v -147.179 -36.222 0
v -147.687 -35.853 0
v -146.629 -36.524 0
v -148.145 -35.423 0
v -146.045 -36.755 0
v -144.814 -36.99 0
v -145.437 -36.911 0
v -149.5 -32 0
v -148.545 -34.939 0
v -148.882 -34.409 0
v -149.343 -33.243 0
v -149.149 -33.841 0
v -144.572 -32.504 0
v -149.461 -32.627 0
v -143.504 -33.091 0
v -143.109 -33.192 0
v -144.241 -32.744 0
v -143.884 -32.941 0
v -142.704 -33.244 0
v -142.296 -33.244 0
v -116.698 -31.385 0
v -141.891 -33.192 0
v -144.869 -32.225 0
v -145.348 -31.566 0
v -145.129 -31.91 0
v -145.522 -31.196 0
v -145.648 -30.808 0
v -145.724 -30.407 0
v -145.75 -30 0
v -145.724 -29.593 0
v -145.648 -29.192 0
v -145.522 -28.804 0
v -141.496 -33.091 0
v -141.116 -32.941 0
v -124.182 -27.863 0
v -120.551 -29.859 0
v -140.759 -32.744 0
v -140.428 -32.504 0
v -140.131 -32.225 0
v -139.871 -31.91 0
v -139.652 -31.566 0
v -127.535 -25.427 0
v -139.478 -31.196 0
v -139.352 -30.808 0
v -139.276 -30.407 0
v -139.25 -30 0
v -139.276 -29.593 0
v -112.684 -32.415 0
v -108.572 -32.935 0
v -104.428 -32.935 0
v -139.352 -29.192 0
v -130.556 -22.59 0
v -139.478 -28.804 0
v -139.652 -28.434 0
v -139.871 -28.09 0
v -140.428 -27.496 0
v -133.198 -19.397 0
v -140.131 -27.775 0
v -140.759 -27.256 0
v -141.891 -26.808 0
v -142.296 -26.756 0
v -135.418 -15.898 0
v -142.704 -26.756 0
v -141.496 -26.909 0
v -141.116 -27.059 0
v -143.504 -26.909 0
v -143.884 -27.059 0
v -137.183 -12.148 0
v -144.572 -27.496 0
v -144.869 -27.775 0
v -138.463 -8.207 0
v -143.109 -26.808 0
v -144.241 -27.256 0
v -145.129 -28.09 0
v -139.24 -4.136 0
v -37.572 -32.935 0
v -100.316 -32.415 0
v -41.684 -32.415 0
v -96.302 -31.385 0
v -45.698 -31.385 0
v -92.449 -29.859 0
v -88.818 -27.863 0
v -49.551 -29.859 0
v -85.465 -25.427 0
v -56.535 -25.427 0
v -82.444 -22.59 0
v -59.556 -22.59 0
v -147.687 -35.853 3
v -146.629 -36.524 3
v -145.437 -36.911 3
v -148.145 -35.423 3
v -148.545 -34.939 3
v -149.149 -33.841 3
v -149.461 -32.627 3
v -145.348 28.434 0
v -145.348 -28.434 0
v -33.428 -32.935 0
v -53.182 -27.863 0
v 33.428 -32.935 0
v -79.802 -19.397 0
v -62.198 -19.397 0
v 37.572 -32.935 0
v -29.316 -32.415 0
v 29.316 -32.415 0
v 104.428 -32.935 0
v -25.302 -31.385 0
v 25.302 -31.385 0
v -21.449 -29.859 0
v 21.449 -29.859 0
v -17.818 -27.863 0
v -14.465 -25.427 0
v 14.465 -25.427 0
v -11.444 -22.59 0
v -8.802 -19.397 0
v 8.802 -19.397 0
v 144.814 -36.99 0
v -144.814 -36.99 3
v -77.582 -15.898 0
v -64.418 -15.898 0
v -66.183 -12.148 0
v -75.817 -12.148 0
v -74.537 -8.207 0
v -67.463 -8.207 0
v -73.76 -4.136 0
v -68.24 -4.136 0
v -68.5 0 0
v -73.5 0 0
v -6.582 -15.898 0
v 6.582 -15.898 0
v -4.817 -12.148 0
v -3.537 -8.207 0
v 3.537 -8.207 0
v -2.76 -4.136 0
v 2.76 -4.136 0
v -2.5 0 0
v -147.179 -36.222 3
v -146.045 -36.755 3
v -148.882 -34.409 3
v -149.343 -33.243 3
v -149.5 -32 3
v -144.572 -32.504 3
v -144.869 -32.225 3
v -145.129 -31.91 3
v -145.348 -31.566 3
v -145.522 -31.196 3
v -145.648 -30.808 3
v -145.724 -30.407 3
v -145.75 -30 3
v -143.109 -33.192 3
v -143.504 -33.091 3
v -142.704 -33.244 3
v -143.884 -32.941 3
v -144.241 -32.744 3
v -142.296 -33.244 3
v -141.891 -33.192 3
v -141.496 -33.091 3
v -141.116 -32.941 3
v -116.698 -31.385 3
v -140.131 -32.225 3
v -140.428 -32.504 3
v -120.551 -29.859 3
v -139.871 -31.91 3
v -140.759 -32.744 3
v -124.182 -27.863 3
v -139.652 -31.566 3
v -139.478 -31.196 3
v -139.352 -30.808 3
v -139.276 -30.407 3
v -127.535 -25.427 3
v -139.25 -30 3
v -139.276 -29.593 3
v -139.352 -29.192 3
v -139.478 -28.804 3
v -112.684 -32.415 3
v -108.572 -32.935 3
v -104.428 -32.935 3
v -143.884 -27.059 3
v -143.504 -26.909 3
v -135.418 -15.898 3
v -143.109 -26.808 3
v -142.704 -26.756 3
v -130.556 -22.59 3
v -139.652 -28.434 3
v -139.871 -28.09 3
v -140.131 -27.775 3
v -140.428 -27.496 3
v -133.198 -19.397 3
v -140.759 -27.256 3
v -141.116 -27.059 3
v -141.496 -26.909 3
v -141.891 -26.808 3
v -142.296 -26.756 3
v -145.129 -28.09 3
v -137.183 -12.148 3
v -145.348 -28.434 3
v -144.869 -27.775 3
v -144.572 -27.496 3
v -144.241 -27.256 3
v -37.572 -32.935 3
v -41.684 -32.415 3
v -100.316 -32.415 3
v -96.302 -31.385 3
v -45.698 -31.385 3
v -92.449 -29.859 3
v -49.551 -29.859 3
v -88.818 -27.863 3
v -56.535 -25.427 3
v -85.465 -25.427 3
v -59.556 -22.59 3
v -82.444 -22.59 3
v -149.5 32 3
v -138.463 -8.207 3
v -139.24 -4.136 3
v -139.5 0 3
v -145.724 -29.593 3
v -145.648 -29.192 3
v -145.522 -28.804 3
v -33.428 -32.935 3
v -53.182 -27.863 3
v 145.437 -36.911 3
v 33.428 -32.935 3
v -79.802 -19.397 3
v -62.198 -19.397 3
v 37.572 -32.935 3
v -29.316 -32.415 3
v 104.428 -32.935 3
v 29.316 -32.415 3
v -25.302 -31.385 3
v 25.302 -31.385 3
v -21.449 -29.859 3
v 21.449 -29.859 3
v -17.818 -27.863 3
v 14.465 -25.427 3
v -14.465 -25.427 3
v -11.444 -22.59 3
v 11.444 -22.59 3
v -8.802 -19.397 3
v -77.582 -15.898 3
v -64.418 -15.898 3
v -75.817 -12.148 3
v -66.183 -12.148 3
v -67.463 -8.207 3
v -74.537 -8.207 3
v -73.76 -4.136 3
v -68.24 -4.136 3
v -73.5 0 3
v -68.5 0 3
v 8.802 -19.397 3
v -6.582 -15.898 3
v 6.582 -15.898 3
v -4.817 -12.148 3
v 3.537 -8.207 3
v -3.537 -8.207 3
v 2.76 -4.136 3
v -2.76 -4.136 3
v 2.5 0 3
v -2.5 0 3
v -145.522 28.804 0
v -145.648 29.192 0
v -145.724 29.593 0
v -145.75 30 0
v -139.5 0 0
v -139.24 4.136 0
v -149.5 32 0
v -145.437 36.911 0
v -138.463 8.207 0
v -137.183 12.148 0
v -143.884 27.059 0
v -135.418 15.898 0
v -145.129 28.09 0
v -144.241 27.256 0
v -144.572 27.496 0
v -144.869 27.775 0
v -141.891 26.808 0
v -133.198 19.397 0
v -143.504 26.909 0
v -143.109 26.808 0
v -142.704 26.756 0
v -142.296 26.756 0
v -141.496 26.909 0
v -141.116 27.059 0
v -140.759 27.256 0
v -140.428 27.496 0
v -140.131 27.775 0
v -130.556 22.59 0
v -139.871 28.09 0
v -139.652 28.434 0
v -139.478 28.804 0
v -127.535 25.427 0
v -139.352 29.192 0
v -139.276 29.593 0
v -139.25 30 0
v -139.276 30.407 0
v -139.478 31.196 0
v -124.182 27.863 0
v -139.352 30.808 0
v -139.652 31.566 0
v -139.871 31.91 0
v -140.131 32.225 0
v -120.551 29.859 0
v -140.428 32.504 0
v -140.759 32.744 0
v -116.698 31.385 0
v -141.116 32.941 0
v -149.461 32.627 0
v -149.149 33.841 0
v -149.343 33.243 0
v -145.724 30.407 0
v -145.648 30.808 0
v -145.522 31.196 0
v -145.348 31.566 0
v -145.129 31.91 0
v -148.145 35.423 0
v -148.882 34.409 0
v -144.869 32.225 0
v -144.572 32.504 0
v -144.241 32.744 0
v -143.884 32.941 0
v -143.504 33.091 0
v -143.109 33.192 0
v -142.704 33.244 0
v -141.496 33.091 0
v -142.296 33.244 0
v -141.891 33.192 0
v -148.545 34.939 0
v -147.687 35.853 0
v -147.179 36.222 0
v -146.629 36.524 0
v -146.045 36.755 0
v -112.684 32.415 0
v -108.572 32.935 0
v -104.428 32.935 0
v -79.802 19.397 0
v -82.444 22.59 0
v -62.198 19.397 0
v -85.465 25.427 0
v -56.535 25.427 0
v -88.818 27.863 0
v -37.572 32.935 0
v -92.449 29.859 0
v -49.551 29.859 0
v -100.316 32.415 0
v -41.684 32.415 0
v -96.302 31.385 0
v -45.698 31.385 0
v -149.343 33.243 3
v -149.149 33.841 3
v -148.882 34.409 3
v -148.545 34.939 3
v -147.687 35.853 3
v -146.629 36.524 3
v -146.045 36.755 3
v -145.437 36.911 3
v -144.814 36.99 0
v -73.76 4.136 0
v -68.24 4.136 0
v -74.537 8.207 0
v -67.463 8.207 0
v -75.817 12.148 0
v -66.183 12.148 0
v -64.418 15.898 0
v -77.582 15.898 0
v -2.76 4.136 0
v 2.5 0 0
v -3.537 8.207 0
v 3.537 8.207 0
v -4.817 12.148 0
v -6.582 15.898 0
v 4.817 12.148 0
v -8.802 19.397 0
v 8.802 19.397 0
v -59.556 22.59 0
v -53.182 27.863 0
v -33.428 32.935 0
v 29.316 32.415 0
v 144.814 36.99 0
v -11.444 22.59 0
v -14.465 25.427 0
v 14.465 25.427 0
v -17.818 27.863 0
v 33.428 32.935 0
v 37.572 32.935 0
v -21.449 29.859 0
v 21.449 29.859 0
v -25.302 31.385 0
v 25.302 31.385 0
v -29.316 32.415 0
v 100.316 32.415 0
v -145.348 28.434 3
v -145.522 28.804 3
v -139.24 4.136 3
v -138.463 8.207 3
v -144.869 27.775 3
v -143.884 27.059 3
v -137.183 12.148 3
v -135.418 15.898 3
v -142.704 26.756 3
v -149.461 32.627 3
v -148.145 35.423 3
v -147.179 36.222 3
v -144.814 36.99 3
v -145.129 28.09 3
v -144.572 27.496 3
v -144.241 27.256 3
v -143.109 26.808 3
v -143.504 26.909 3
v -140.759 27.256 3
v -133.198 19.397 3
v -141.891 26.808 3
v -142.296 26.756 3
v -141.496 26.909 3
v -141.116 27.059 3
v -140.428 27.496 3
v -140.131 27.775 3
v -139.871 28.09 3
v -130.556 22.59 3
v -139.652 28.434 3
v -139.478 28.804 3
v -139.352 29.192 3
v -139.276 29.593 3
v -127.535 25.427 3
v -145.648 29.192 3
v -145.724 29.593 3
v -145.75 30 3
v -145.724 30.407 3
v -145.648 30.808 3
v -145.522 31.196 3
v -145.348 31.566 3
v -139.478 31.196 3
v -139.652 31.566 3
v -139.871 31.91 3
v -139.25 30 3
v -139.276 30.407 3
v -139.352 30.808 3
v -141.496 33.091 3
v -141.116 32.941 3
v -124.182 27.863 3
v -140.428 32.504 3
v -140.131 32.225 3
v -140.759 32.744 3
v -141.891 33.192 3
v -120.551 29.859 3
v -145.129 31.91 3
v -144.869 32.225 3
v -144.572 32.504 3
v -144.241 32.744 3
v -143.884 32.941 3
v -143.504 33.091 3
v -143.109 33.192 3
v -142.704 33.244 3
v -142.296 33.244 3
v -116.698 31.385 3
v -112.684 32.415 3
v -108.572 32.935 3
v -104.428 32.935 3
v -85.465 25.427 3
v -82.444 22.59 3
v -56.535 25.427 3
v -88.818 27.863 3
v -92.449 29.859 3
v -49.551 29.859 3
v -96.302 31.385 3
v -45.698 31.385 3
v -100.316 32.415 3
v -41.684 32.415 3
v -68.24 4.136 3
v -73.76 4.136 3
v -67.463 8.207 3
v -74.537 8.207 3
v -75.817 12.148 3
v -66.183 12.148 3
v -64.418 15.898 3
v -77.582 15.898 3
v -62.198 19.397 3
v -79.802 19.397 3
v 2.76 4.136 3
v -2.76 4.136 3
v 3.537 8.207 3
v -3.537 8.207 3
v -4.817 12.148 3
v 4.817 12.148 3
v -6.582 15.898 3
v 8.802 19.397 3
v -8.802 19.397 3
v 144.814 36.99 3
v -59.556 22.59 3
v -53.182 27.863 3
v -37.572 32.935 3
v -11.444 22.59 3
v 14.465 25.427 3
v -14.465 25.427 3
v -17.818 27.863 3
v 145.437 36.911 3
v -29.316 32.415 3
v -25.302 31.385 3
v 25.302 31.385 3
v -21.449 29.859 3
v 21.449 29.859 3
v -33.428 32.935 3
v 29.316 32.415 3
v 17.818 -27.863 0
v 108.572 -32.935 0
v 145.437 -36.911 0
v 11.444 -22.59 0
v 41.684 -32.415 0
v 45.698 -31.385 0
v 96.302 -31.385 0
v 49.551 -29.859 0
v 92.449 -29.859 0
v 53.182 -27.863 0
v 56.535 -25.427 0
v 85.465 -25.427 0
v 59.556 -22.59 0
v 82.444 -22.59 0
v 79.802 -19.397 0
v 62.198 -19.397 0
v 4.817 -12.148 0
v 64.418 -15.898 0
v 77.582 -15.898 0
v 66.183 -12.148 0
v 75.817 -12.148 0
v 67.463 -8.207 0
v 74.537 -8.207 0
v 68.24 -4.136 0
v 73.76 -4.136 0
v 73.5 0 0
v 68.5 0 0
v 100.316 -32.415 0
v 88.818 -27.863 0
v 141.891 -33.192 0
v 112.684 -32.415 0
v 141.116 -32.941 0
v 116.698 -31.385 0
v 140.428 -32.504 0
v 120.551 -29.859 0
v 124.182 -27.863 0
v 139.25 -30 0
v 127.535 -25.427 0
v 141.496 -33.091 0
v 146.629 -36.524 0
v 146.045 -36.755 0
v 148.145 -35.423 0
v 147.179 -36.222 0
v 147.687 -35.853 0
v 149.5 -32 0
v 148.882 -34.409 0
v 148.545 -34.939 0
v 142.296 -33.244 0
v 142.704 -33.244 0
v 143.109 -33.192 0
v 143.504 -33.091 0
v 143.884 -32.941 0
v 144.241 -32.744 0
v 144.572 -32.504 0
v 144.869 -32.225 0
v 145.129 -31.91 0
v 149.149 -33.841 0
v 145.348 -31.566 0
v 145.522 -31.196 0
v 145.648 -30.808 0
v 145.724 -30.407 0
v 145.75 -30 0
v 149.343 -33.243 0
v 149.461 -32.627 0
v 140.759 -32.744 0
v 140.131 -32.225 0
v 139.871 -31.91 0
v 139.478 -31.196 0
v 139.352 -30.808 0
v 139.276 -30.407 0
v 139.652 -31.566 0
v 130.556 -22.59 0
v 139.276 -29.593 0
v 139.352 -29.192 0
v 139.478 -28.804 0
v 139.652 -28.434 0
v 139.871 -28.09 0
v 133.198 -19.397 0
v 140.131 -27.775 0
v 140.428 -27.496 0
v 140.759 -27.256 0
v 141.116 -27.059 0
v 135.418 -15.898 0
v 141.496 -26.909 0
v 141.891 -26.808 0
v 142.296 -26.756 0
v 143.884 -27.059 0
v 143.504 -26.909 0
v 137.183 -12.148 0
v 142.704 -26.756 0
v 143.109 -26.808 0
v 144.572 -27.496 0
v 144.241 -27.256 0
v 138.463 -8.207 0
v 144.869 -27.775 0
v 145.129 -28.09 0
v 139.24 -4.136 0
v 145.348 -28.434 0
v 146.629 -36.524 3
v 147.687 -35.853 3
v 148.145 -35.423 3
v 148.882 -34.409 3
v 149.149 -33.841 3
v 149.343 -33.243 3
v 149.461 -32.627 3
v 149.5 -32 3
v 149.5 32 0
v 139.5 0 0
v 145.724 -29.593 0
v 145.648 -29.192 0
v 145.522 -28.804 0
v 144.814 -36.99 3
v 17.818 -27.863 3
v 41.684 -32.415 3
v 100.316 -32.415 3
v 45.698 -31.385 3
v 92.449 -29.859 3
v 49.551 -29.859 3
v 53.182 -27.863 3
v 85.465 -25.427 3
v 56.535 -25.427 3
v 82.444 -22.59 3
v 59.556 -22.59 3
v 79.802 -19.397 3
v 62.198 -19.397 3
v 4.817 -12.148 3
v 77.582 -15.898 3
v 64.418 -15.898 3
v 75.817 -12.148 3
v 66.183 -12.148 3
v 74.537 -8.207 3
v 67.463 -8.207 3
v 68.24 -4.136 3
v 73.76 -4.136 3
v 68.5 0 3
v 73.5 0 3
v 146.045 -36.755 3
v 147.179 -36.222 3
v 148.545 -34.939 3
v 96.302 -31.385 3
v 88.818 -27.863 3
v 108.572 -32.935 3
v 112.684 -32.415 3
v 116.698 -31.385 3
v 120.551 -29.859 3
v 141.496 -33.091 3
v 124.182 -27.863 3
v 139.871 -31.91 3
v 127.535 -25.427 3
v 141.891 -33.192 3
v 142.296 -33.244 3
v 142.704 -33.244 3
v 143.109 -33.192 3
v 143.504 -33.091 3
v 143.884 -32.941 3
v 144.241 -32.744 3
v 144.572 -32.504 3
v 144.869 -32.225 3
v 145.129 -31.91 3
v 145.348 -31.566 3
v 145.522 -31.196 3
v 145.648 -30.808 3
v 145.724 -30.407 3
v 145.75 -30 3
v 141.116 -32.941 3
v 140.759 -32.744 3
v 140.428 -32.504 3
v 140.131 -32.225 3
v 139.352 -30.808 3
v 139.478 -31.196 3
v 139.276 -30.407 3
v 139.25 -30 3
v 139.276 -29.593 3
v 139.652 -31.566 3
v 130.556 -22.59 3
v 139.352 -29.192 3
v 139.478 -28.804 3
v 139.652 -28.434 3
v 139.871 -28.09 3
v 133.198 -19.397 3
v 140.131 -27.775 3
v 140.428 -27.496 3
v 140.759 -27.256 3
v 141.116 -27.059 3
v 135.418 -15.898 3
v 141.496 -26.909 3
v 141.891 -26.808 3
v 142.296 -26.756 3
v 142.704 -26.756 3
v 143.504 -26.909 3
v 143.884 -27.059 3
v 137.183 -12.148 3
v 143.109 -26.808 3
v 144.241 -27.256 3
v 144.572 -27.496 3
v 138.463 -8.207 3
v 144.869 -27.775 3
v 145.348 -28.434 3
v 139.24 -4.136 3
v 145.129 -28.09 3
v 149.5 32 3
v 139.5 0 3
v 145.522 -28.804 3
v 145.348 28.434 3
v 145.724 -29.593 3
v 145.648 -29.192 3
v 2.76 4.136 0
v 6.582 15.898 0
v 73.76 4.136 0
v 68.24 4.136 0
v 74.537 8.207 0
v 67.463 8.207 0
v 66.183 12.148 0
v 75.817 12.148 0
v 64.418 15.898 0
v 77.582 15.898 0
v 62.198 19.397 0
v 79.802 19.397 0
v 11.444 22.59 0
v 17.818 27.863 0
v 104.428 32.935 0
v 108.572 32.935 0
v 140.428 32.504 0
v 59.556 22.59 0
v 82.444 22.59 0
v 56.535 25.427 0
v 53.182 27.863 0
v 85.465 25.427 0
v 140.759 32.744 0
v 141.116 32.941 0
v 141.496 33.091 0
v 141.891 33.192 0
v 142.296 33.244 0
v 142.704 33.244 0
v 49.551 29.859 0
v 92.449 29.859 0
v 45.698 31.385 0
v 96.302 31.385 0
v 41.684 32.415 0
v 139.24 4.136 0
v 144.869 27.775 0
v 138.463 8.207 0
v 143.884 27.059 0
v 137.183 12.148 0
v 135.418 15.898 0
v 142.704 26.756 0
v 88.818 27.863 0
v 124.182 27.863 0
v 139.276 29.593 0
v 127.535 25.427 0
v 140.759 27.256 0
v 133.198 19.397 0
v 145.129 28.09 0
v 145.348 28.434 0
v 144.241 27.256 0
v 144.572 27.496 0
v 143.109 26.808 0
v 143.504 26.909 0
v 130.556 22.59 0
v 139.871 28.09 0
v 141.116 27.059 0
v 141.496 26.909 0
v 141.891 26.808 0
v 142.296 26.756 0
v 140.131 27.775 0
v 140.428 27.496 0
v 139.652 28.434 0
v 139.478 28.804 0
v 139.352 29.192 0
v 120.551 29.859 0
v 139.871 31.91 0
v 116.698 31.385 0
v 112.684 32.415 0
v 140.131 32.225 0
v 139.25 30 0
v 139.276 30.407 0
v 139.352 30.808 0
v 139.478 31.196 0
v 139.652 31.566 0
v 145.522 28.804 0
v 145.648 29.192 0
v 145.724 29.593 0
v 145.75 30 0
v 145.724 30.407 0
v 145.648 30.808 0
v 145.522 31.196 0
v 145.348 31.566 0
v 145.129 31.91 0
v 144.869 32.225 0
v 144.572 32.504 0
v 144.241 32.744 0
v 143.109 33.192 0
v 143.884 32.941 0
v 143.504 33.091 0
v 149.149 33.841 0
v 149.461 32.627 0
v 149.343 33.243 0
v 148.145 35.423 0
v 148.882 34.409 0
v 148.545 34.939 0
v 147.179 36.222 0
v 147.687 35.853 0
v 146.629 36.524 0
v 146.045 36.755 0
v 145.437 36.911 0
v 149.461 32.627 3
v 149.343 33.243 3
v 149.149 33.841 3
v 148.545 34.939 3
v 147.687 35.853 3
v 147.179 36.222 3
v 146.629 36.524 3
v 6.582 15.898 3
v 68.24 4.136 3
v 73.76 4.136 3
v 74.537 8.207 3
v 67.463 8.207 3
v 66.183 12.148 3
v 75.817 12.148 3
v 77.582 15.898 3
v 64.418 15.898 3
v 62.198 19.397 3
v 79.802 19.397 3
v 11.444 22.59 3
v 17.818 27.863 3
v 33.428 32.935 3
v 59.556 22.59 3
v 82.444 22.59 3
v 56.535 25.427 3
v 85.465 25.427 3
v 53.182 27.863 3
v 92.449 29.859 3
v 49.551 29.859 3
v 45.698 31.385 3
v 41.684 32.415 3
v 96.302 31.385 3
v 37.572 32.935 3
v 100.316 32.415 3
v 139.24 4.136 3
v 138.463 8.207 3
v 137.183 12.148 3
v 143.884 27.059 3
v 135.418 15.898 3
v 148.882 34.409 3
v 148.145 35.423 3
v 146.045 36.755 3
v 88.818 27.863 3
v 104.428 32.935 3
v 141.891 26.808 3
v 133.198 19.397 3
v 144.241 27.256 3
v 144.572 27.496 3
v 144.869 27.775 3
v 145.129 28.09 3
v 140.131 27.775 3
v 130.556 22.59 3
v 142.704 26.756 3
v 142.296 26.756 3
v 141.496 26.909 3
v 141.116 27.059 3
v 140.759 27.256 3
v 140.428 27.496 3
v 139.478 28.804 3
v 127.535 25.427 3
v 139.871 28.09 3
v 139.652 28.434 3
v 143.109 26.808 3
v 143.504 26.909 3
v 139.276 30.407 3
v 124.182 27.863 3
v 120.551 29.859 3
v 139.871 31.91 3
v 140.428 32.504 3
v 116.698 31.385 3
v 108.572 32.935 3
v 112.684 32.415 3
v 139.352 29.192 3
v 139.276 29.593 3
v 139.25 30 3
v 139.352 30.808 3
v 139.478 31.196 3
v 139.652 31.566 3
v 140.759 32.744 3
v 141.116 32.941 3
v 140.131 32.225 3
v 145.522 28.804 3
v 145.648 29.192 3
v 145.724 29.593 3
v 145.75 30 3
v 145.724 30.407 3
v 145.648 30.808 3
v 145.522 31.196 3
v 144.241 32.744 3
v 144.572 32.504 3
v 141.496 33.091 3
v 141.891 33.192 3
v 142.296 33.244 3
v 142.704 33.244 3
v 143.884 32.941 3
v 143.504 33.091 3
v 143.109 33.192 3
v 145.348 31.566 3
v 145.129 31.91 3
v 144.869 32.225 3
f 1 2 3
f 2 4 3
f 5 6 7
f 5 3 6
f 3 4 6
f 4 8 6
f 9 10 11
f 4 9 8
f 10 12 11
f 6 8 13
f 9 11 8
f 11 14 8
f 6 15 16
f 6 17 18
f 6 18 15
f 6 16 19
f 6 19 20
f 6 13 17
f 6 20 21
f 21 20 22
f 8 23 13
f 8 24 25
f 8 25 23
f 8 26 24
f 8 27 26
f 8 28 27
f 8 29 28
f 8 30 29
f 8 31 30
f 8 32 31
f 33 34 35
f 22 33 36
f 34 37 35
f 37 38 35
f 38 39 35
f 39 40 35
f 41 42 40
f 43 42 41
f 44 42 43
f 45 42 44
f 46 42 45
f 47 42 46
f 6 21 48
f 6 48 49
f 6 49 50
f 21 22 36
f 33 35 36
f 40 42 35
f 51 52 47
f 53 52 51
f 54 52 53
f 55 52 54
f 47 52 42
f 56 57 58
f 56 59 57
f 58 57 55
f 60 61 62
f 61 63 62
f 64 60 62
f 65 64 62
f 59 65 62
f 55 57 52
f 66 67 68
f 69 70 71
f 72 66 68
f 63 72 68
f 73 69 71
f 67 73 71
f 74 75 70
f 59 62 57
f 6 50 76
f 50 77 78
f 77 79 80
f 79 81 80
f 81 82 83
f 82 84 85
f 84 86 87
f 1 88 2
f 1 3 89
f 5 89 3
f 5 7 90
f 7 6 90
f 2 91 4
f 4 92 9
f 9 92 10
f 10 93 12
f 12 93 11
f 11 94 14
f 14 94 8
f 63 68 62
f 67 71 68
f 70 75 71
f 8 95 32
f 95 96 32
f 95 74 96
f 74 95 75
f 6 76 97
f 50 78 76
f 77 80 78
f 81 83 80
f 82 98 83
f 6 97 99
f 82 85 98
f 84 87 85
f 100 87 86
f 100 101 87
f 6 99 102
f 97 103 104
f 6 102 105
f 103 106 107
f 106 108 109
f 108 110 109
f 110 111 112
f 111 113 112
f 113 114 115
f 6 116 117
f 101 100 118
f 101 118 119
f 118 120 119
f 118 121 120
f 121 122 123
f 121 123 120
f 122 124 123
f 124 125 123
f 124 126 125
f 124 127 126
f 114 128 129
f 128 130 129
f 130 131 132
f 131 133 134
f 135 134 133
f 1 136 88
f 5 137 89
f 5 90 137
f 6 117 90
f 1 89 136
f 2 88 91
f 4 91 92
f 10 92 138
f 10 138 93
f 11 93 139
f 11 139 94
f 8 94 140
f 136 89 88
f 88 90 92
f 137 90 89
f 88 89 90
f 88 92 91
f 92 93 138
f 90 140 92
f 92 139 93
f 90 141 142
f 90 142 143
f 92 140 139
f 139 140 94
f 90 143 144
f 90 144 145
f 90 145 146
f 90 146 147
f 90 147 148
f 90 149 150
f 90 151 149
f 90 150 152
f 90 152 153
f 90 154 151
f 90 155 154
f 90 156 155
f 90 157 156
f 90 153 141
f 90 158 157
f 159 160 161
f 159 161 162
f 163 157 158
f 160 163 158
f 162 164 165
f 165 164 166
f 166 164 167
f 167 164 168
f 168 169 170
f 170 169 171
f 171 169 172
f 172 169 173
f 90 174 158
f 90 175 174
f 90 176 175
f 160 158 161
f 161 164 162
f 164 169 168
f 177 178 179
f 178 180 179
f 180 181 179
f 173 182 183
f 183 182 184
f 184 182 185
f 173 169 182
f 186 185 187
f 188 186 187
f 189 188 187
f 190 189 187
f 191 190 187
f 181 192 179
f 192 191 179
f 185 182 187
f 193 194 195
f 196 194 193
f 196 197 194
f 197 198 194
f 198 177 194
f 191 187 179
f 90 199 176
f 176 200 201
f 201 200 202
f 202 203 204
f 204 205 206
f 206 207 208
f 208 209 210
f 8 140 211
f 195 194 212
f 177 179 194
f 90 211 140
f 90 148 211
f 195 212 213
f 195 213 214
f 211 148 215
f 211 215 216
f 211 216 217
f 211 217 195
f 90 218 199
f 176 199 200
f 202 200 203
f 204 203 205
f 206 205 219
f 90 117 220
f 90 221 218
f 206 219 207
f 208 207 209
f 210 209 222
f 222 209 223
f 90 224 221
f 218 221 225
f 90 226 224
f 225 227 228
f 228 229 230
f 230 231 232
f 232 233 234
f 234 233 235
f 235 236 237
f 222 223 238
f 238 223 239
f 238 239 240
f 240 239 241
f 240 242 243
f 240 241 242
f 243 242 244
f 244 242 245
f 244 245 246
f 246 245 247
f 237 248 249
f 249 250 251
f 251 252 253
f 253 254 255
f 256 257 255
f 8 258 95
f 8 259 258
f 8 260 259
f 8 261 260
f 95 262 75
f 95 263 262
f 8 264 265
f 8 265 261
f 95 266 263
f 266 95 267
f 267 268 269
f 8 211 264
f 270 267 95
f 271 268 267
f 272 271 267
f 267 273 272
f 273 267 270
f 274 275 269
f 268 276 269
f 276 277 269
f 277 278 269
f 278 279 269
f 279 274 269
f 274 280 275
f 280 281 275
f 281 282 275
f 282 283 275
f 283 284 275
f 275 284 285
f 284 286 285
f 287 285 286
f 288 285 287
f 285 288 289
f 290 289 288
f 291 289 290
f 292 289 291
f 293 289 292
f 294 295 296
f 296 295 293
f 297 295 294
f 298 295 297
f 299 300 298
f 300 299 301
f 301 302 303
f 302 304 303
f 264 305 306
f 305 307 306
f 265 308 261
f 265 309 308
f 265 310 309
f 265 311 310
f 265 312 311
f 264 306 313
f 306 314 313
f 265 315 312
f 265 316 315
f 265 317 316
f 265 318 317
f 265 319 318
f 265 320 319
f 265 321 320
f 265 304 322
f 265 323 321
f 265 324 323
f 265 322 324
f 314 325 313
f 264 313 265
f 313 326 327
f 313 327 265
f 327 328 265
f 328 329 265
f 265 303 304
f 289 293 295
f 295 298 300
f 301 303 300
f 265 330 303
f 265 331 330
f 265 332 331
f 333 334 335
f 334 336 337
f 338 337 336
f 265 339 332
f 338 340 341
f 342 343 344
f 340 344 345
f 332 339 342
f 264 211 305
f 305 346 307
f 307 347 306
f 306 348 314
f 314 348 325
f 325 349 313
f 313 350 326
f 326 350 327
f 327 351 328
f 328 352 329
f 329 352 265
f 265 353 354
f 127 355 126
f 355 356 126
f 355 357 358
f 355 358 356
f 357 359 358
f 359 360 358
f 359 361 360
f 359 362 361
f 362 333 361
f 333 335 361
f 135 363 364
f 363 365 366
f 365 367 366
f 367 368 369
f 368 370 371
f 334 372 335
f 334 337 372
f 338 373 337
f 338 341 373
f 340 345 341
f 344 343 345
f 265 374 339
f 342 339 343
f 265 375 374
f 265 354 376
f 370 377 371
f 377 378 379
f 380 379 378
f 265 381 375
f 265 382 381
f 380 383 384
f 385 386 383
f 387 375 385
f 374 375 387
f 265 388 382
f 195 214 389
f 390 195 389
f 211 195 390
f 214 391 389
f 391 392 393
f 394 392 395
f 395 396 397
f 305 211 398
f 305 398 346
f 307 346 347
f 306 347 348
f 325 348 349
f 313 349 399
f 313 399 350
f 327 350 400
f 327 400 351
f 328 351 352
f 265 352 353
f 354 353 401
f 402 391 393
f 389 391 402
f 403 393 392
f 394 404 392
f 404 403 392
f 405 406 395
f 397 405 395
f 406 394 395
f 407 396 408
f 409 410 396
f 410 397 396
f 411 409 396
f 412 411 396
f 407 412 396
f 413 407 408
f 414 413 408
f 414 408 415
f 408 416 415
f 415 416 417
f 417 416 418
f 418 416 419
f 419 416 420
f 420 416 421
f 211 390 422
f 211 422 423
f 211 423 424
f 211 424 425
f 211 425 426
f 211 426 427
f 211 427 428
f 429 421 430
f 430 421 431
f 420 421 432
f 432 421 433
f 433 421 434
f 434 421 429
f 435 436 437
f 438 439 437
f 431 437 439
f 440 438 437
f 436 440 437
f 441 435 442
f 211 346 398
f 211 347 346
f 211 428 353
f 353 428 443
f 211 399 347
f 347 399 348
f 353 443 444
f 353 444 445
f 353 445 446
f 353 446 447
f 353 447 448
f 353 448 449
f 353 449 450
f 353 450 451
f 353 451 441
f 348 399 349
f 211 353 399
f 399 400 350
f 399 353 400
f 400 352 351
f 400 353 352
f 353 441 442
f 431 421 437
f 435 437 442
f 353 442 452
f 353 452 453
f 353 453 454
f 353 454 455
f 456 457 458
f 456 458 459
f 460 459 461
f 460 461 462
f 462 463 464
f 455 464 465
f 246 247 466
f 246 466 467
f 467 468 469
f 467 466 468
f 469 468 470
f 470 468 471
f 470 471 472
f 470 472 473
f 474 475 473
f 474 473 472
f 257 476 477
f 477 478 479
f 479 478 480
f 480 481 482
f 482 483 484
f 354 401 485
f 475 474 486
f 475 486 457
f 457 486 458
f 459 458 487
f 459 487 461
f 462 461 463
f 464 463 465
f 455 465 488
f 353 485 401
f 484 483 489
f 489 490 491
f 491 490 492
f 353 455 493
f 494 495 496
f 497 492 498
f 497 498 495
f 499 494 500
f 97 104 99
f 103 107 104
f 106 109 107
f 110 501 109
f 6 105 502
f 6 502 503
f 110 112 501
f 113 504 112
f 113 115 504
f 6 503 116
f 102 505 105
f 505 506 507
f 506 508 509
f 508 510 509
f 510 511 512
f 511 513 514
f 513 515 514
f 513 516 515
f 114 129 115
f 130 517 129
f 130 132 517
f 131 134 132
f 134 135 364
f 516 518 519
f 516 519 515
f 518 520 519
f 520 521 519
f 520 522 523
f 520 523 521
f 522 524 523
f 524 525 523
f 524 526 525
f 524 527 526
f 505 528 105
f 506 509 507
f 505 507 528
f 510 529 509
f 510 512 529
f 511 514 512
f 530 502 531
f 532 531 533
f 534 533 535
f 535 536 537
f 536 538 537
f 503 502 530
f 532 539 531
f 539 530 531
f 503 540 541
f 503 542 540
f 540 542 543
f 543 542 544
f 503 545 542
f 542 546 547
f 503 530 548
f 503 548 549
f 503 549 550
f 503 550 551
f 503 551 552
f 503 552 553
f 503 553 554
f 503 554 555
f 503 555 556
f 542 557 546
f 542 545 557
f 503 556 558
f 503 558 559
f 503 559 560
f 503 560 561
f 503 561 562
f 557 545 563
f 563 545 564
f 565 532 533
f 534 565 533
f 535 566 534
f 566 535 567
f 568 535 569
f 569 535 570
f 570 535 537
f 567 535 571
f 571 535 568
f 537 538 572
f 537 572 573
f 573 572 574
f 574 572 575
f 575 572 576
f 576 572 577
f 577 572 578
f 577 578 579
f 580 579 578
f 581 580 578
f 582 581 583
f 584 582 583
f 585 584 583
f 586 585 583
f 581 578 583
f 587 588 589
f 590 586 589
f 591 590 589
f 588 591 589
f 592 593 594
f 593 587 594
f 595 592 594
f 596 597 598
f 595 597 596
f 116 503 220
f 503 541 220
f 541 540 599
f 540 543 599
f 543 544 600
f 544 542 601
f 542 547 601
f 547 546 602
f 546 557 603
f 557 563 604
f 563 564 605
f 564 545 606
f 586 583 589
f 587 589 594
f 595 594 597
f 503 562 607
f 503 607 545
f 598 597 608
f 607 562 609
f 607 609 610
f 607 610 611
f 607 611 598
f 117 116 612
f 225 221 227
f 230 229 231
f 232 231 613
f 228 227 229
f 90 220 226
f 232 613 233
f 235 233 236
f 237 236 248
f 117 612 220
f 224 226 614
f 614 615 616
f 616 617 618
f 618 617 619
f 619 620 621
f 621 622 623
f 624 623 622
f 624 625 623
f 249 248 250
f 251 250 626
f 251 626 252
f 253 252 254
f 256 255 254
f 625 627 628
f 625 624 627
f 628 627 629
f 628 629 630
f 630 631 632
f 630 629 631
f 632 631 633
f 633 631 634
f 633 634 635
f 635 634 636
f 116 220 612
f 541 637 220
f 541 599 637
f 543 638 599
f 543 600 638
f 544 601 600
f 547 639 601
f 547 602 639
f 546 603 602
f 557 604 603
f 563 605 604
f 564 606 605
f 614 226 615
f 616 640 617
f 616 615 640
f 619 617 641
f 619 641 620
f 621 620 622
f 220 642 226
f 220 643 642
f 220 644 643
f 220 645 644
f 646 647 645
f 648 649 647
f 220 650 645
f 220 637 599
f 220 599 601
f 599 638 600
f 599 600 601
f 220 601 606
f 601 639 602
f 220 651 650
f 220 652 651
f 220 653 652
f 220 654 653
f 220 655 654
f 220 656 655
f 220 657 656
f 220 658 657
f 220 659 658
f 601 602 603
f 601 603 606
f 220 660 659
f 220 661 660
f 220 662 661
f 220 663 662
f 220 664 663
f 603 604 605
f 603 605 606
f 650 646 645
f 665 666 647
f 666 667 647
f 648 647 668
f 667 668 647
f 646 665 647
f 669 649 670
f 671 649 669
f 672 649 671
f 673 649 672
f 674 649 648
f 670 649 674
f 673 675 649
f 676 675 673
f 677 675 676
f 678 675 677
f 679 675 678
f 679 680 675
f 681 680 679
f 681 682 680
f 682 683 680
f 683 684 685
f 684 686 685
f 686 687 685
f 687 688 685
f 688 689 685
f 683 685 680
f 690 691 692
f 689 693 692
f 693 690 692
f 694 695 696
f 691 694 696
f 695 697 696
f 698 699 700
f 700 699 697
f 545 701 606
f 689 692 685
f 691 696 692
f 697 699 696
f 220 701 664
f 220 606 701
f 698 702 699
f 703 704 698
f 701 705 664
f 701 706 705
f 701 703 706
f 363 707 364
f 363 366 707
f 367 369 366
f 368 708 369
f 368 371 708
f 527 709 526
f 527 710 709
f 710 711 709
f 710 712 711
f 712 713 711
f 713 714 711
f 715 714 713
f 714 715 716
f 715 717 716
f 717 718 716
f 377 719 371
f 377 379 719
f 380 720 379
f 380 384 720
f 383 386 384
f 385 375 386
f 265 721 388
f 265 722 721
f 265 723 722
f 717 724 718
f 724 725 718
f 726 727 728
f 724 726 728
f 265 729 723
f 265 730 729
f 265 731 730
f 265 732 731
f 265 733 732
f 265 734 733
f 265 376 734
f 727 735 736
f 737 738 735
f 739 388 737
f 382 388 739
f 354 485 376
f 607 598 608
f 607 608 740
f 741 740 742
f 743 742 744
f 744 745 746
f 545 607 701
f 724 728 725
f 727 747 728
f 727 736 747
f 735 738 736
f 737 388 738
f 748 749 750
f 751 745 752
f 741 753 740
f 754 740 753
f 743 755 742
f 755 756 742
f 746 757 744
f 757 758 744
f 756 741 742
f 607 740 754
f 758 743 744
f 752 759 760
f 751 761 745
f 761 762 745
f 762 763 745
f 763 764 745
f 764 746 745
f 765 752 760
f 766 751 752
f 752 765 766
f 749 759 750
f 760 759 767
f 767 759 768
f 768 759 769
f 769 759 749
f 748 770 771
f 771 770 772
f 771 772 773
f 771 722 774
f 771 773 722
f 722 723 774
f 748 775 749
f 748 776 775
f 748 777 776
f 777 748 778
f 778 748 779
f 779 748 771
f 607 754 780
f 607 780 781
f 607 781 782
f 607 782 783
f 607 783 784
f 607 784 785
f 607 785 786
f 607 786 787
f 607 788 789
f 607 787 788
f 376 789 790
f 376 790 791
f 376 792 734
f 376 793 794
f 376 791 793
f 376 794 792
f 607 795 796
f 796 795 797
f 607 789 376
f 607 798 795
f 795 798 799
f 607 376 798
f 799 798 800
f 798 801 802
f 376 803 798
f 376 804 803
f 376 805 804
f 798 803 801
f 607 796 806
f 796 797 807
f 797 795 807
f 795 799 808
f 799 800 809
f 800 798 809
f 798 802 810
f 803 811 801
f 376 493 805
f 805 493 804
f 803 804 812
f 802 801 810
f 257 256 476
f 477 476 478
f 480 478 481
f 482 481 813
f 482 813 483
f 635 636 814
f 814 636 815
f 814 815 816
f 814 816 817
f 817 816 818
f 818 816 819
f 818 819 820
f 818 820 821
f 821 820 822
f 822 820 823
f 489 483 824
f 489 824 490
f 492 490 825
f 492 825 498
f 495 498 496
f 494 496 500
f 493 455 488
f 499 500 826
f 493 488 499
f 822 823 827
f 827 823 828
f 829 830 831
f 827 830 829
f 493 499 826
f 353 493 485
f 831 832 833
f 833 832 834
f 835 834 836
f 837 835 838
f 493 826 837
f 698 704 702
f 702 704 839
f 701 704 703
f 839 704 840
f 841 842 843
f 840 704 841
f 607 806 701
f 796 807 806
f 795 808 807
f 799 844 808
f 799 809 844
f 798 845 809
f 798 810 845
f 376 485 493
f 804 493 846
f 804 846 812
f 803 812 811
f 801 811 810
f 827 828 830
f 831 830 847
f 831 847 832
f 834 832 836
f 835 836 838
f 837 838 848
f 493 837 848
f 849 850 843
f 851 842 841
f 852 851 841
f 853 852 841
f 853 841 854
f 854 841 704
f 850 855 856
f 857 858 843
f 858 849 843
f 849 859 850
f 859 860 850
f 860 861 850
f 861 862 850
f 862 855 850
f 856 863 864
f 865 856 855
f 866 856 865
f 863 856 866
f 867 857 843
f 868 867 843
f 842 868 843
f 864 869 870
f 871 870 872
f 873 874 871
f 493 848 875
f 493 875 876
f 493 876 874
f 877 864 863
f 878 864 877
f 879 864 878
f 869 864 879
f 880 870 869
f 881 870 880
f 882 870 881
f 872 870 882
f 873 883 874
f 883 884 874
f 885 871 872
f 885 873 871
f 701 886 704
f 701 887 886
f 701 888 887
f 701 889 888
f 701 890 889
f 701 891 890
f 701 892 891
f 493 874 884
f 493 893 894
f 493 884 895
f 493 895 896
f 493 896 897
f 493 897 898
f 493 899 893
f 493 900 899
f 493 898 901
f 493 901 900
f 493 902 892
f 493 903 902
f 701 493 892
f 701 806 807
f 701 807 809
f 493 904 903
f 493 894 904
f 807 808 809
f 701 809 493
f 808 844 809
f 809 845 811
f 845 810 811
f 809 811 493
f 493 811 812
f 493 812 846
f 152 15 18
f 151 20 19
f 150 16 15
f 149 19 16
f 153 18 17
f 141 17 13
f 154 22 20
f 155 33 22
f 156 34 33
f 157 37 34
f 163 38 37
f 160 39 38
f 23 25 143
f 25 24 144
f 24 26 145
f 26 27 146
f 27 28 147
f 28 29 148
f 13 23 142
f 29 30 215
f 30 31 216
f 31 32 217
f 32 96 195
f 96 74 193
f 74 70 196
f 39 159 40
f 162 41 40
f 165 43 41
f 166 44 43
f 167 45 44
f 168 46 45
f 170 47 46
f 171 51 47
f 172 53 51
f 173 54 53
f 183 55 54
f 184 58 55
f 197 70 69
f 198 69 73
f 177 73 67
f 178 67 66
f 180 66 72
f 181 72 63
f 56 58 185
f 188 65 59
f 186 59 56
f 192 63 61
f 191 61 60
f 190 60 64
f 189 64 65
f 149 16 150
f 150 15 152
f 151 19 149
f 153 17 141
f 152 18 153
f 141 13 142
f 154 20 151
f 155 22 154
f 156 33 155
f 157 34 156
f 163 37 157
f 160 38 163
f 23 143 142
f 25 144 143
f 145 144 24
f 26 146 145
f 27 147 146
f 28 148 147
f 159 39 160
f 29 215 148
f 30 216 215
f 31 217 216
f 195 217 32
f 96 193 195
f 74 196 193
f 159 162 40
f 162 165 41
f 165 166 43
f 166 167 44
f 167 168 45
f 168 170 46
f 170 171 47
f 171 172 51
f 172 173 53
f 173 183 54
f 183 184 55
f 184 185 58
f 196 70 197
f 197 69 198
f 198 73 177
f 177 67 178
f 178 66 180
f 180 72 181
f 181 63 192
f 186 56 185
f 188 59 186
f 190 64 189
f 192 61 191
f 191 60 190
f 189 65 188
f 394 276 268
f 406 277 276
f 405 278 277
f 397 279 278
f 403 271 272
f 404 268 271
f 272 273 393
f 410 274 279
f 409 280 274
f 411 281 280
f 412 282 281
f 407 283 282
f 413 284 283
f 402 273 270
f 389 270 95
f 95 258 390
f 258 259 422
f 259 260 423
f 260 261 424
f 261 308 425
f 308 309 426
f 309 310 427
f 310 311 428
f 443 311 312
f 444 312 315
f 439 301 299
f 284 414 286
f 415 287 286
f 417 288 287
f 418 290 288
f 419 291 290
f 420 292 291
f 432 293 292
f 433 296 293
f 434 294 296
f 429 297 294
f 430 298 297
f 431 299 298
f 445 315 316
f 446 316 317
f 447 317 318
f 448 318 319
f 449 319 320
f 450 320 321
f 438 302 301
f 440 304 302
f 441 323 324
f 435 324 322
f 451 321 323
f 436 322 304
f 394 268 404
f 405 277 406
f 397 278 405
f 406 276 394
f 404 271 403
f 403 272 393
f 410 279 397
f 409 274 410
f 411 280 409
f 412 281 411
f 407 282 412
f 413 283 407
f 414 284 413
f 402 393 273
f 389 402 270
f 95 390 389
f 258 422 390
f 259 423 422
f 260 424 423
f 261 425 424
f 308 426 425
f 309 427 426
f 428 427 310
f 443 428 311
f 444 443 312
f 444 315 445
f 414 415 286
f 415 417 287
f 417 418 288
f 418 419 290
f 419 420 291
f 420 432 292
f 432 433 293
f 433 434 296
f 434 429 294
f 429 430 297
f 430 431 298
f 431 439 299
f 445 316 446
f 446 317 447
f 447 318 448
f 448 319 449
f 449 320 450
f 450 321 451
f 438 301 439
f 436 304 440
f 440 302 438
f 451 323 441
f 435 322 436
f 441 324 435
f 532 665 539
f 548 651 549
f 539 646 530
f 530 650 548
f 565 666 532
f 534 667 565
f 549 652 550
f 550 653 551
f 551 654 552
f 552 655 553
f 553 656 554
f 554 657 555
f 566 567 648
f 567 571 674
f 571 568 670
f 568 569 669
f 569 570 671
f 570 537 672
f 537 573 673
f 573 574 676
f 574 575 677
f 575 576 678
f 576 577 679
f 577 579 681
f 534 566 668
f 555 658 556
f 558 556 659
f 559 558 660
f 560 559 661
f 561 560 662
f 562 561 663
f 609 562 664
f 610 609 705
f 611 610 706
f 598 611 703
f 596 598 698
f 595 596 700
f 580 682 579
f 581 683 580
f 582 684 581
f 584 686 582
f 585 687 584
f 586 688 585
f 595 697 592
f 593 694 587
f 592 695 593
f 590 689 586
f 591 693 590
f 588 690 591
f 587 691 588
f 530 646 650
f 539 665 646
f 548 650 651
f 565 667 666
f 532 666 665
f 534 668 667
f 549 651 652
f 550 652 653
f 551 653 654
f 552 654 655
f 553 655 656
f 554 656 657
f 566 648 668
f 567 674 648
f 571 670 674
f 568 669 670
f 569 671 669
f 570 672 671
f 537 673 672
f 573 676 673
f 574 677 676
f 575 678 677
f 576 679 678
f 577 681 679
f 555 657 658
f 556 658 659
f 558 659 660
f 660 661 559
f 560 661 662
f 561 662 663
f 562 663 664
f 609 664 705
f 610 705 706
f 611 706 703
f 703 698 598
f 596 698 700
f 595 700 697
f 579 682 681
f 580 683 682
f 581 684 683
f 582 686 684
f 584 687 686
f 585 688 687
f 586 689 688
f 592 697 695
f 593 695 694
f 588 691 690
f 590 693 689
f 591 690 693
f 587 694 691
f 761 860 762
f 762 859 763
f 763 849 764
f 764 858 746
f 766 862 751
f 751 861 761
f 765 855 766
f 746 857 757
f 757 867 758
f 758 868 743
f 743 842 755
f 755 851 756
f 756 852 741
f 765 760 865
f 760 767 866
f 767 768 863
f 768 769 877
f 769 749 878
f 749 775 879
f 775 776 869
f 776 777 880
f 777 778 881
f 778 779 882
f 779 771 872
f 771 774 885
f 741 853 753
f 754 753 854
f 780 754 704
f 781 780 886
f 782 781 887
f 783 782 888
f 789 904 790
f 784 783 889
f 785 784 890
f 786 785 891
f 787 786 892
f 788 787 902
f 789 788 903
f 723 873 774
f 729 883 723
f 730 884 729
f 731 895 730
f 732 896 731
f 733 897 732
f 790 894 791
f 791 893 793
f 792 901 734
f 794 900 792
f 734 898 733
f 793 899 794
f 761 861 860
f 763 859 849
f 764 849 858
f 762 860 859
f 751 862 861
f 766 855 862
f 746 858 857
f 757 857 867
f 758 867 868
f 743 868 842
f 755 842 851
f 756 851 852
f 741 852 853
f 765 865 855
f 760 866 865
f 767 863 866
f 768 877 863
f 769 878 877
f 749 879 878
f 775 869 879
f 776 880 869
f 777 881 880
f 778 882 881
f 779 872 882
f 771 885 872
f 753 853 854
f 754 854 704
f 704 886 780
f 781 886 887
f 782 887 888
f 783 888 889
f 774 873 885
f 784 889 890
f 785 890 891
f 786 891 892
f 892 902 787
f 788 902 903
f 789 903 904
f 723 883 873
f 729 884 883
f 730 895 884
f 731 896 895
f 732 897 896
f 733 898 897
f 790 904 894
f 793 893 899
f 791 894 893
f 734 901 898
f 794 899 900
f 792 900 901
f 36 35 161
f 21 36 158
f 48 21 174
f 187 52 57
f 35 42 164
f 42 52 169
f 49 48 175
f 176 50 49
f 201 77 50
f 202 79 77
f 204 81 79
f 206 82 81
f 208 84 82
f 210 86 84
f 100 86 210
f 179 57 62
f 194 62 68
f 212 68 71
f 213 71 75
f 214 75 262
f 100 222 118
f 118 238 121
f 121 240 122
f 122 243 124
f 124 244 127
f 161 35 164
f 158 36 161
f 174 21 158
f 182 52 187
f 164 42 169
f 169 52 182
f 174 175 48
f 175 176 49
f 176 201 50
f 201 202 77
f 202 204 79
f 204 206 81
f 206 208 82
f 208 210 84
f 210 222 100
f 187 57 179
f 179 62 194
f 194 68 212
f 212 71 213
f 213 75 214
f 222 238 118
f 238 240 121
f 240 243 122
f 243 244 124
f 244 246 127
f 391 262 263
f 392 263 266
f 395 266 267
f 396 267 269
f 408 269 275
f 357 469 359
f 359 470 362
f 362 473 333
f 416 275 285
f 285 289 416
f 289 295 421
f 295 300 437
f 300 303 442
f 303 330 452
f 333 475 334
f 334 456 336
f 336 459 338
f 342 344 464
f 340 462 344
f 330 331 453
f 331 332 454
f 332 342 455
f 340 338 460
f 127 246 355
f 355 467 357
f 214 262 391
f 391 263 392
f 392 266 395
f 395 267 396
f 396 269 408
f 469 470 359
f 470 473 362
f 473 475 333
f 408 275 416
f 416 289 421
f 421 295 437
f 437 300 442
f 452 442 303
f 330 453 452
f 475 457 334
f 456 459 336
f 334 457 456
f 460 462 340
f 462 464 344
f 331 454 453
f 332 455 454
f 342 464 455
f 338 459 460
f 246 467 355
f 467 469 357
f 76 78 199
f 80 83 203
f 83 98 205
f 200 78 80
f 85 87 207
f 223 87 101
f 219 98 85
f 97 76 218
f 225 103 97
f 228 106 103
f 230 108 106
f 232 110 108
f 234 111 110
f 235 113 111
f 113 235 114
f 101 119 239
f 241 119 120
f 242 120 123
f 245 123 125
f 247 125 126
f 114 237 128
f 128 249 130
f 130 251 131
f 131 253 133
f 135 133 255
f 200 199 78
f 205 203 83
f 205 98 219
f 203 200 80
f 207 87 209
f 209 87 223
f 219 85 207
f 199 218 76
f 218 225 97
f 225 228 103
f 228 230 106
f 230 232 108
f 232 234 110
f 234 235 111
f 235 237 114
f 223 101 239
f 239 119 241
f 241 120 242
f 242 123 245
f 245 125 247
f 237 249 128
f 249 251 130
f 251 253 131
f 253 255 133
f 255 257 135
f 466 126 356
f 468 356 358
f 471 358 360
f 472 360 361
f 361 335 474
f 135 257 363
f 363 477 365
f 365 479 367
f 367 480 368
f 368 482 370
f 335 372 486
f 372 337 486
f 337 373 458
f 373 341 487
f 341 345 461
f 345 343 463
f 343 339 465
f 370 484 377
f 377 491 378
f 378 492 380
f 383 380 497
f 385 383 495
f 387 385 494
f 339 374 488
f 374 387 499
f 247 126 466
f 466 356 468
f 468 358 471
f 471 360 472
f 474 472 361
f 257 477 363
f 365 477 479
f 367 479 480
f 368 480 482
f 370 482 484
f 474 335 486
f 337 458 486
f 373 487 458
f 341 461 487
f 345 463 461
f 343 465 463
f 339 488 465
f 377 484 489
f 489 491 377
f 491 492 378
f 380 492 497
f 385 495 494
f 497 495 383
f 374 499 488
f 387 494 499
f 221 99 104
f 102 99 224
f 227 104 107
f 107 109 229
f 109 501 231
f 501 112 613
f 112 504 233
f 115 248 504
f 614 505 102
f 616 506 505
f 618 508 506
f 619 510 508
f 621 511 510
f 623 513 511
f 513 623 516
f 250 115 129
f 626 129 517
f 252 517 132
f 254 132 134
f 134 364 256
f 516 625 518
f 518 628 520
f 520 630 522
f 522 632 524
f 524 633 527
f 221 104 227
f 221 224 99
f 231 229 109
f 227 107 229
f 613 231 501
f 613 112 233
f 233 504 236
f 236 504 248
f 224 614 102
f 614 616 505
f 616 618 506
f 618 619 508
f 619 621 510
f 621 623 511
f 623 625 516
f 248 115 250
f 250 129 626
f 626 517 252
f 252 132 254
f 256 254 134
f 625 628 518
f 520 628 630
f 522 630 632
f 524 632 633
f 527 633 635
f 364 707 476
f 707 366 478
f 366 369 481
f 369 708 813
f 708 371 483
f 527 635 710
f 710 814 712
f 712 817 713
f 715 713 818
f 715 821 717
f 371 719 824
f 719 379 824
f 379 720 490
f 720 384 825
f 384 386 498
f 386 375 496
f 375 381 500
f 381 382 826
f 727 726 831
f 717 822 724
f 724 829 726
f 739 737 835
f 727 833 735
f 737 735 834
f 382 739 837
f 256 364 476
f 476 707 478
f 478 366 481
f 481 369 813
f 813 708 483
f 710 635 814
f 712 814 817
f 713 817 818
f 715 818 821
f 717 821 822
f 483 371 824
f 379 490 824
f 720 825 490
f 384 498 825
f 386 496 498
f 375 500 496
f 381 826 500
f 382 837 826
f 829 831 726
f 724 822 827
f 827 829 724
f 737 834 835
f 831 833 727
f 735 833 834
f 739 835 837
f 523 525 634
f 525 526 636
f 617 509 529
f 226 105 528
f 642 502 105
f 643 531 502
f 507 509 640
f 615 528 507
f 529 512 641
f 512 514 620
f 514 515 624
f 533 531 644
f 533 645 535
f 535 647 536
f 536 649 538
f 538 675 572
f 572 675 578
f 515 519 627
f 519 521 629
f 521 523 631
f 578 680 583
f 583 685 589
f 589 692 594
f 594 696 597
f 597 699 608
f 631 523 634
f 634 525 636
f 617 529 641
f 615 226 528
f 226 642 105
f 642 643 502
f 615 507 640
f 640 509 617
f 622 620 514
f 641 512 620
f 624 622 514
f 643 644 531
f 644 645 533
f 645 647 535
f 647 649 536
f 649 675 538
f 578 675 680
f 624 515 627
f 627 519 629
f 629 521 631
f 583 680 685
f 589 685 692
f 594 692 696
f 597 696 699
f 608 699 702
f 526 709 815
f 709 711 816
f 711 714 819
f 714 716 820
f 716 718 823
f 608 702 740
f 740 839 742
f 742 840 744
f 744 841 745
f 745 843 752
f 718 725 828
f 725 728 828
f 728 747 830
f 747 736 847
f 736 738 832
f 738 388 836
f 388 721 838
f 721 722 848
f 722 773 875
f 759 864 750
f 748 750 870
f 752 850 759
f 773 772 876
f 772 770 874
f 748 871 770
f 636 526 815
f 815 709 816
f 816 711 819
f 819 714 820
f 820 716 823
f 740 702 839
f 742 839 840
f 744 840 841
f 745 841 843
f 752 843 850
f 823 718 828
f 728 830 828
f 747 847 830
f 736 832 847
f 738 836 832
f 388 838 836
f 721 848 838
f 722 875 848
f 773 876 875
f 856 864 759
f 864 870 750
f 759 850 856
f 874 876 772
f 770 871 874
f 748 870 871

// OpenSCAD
$fn = 50;

difference() {
	union() {
		hull() {
			translate(v = [-144.5, 32.0, 0]) {
				cylinder(h = 3, r = 5);
			}
			translate(v = [144.5, 32.0, 0]) {
				cylinder(h = 3, r = 5);
			}
			translate(v = [-144.5, -32.0, 0]) {
				cylinder(h = 3, r = 5);
			}
			translate(v = [144.5, -32.0, 0]) {
				cylinder(h = 3, r = 5);
			}
		}
	}
	union() {
		translate(v = [-142.5, -30.0, -100.0]) {
			cylinder(h = 200, r = 3.25);
		}
		translate(v = [-142.5, 30.0, -100.0]) {
			cylinder(h = 200, r = 3.25);
		}
		translate(v = [142.5, -30.0, -100.0]) {
			cylinder(h = 200, r = 3.25);
		}
		translate(v = [142.5, 30.0, -100.0]) {
			cylinder(h = 200, r = 3.25);
		}
		translate(v = [-142.5, -30.0, -100.0]) {
			cylinder(h = 200, r = 1.8);
		}
		translate(v = [-142.5, 30.0, -100.0]) {
			cylinder(h = 200, r = 1.8);
		}
		translate(v = [142.5, -30.0, -100.0]) {
			cylinder(h = 200, r = 1.8);
		}
		translate(v = [142.5, 30.0, -100.0]) {
			cylinder(h = 200, r = 1.8);
		}
		translate(v = [-106.5, 0, 0.0]) {
			cylinder(h = 3, r = 33.0);
		}
		translate(v = [-35.5, 0, 0.0]) {
			cylinder(h = 3, r = 33.0);
		}
		translate(v = [35.5, 0, 0.0]) {
			cylinder(h = 3, r = 33.0);
		}
		translate(v = [106.5, 0, 0.0]) {
			cylinder(h = 3, r = 33.0);
		}
	}
}
